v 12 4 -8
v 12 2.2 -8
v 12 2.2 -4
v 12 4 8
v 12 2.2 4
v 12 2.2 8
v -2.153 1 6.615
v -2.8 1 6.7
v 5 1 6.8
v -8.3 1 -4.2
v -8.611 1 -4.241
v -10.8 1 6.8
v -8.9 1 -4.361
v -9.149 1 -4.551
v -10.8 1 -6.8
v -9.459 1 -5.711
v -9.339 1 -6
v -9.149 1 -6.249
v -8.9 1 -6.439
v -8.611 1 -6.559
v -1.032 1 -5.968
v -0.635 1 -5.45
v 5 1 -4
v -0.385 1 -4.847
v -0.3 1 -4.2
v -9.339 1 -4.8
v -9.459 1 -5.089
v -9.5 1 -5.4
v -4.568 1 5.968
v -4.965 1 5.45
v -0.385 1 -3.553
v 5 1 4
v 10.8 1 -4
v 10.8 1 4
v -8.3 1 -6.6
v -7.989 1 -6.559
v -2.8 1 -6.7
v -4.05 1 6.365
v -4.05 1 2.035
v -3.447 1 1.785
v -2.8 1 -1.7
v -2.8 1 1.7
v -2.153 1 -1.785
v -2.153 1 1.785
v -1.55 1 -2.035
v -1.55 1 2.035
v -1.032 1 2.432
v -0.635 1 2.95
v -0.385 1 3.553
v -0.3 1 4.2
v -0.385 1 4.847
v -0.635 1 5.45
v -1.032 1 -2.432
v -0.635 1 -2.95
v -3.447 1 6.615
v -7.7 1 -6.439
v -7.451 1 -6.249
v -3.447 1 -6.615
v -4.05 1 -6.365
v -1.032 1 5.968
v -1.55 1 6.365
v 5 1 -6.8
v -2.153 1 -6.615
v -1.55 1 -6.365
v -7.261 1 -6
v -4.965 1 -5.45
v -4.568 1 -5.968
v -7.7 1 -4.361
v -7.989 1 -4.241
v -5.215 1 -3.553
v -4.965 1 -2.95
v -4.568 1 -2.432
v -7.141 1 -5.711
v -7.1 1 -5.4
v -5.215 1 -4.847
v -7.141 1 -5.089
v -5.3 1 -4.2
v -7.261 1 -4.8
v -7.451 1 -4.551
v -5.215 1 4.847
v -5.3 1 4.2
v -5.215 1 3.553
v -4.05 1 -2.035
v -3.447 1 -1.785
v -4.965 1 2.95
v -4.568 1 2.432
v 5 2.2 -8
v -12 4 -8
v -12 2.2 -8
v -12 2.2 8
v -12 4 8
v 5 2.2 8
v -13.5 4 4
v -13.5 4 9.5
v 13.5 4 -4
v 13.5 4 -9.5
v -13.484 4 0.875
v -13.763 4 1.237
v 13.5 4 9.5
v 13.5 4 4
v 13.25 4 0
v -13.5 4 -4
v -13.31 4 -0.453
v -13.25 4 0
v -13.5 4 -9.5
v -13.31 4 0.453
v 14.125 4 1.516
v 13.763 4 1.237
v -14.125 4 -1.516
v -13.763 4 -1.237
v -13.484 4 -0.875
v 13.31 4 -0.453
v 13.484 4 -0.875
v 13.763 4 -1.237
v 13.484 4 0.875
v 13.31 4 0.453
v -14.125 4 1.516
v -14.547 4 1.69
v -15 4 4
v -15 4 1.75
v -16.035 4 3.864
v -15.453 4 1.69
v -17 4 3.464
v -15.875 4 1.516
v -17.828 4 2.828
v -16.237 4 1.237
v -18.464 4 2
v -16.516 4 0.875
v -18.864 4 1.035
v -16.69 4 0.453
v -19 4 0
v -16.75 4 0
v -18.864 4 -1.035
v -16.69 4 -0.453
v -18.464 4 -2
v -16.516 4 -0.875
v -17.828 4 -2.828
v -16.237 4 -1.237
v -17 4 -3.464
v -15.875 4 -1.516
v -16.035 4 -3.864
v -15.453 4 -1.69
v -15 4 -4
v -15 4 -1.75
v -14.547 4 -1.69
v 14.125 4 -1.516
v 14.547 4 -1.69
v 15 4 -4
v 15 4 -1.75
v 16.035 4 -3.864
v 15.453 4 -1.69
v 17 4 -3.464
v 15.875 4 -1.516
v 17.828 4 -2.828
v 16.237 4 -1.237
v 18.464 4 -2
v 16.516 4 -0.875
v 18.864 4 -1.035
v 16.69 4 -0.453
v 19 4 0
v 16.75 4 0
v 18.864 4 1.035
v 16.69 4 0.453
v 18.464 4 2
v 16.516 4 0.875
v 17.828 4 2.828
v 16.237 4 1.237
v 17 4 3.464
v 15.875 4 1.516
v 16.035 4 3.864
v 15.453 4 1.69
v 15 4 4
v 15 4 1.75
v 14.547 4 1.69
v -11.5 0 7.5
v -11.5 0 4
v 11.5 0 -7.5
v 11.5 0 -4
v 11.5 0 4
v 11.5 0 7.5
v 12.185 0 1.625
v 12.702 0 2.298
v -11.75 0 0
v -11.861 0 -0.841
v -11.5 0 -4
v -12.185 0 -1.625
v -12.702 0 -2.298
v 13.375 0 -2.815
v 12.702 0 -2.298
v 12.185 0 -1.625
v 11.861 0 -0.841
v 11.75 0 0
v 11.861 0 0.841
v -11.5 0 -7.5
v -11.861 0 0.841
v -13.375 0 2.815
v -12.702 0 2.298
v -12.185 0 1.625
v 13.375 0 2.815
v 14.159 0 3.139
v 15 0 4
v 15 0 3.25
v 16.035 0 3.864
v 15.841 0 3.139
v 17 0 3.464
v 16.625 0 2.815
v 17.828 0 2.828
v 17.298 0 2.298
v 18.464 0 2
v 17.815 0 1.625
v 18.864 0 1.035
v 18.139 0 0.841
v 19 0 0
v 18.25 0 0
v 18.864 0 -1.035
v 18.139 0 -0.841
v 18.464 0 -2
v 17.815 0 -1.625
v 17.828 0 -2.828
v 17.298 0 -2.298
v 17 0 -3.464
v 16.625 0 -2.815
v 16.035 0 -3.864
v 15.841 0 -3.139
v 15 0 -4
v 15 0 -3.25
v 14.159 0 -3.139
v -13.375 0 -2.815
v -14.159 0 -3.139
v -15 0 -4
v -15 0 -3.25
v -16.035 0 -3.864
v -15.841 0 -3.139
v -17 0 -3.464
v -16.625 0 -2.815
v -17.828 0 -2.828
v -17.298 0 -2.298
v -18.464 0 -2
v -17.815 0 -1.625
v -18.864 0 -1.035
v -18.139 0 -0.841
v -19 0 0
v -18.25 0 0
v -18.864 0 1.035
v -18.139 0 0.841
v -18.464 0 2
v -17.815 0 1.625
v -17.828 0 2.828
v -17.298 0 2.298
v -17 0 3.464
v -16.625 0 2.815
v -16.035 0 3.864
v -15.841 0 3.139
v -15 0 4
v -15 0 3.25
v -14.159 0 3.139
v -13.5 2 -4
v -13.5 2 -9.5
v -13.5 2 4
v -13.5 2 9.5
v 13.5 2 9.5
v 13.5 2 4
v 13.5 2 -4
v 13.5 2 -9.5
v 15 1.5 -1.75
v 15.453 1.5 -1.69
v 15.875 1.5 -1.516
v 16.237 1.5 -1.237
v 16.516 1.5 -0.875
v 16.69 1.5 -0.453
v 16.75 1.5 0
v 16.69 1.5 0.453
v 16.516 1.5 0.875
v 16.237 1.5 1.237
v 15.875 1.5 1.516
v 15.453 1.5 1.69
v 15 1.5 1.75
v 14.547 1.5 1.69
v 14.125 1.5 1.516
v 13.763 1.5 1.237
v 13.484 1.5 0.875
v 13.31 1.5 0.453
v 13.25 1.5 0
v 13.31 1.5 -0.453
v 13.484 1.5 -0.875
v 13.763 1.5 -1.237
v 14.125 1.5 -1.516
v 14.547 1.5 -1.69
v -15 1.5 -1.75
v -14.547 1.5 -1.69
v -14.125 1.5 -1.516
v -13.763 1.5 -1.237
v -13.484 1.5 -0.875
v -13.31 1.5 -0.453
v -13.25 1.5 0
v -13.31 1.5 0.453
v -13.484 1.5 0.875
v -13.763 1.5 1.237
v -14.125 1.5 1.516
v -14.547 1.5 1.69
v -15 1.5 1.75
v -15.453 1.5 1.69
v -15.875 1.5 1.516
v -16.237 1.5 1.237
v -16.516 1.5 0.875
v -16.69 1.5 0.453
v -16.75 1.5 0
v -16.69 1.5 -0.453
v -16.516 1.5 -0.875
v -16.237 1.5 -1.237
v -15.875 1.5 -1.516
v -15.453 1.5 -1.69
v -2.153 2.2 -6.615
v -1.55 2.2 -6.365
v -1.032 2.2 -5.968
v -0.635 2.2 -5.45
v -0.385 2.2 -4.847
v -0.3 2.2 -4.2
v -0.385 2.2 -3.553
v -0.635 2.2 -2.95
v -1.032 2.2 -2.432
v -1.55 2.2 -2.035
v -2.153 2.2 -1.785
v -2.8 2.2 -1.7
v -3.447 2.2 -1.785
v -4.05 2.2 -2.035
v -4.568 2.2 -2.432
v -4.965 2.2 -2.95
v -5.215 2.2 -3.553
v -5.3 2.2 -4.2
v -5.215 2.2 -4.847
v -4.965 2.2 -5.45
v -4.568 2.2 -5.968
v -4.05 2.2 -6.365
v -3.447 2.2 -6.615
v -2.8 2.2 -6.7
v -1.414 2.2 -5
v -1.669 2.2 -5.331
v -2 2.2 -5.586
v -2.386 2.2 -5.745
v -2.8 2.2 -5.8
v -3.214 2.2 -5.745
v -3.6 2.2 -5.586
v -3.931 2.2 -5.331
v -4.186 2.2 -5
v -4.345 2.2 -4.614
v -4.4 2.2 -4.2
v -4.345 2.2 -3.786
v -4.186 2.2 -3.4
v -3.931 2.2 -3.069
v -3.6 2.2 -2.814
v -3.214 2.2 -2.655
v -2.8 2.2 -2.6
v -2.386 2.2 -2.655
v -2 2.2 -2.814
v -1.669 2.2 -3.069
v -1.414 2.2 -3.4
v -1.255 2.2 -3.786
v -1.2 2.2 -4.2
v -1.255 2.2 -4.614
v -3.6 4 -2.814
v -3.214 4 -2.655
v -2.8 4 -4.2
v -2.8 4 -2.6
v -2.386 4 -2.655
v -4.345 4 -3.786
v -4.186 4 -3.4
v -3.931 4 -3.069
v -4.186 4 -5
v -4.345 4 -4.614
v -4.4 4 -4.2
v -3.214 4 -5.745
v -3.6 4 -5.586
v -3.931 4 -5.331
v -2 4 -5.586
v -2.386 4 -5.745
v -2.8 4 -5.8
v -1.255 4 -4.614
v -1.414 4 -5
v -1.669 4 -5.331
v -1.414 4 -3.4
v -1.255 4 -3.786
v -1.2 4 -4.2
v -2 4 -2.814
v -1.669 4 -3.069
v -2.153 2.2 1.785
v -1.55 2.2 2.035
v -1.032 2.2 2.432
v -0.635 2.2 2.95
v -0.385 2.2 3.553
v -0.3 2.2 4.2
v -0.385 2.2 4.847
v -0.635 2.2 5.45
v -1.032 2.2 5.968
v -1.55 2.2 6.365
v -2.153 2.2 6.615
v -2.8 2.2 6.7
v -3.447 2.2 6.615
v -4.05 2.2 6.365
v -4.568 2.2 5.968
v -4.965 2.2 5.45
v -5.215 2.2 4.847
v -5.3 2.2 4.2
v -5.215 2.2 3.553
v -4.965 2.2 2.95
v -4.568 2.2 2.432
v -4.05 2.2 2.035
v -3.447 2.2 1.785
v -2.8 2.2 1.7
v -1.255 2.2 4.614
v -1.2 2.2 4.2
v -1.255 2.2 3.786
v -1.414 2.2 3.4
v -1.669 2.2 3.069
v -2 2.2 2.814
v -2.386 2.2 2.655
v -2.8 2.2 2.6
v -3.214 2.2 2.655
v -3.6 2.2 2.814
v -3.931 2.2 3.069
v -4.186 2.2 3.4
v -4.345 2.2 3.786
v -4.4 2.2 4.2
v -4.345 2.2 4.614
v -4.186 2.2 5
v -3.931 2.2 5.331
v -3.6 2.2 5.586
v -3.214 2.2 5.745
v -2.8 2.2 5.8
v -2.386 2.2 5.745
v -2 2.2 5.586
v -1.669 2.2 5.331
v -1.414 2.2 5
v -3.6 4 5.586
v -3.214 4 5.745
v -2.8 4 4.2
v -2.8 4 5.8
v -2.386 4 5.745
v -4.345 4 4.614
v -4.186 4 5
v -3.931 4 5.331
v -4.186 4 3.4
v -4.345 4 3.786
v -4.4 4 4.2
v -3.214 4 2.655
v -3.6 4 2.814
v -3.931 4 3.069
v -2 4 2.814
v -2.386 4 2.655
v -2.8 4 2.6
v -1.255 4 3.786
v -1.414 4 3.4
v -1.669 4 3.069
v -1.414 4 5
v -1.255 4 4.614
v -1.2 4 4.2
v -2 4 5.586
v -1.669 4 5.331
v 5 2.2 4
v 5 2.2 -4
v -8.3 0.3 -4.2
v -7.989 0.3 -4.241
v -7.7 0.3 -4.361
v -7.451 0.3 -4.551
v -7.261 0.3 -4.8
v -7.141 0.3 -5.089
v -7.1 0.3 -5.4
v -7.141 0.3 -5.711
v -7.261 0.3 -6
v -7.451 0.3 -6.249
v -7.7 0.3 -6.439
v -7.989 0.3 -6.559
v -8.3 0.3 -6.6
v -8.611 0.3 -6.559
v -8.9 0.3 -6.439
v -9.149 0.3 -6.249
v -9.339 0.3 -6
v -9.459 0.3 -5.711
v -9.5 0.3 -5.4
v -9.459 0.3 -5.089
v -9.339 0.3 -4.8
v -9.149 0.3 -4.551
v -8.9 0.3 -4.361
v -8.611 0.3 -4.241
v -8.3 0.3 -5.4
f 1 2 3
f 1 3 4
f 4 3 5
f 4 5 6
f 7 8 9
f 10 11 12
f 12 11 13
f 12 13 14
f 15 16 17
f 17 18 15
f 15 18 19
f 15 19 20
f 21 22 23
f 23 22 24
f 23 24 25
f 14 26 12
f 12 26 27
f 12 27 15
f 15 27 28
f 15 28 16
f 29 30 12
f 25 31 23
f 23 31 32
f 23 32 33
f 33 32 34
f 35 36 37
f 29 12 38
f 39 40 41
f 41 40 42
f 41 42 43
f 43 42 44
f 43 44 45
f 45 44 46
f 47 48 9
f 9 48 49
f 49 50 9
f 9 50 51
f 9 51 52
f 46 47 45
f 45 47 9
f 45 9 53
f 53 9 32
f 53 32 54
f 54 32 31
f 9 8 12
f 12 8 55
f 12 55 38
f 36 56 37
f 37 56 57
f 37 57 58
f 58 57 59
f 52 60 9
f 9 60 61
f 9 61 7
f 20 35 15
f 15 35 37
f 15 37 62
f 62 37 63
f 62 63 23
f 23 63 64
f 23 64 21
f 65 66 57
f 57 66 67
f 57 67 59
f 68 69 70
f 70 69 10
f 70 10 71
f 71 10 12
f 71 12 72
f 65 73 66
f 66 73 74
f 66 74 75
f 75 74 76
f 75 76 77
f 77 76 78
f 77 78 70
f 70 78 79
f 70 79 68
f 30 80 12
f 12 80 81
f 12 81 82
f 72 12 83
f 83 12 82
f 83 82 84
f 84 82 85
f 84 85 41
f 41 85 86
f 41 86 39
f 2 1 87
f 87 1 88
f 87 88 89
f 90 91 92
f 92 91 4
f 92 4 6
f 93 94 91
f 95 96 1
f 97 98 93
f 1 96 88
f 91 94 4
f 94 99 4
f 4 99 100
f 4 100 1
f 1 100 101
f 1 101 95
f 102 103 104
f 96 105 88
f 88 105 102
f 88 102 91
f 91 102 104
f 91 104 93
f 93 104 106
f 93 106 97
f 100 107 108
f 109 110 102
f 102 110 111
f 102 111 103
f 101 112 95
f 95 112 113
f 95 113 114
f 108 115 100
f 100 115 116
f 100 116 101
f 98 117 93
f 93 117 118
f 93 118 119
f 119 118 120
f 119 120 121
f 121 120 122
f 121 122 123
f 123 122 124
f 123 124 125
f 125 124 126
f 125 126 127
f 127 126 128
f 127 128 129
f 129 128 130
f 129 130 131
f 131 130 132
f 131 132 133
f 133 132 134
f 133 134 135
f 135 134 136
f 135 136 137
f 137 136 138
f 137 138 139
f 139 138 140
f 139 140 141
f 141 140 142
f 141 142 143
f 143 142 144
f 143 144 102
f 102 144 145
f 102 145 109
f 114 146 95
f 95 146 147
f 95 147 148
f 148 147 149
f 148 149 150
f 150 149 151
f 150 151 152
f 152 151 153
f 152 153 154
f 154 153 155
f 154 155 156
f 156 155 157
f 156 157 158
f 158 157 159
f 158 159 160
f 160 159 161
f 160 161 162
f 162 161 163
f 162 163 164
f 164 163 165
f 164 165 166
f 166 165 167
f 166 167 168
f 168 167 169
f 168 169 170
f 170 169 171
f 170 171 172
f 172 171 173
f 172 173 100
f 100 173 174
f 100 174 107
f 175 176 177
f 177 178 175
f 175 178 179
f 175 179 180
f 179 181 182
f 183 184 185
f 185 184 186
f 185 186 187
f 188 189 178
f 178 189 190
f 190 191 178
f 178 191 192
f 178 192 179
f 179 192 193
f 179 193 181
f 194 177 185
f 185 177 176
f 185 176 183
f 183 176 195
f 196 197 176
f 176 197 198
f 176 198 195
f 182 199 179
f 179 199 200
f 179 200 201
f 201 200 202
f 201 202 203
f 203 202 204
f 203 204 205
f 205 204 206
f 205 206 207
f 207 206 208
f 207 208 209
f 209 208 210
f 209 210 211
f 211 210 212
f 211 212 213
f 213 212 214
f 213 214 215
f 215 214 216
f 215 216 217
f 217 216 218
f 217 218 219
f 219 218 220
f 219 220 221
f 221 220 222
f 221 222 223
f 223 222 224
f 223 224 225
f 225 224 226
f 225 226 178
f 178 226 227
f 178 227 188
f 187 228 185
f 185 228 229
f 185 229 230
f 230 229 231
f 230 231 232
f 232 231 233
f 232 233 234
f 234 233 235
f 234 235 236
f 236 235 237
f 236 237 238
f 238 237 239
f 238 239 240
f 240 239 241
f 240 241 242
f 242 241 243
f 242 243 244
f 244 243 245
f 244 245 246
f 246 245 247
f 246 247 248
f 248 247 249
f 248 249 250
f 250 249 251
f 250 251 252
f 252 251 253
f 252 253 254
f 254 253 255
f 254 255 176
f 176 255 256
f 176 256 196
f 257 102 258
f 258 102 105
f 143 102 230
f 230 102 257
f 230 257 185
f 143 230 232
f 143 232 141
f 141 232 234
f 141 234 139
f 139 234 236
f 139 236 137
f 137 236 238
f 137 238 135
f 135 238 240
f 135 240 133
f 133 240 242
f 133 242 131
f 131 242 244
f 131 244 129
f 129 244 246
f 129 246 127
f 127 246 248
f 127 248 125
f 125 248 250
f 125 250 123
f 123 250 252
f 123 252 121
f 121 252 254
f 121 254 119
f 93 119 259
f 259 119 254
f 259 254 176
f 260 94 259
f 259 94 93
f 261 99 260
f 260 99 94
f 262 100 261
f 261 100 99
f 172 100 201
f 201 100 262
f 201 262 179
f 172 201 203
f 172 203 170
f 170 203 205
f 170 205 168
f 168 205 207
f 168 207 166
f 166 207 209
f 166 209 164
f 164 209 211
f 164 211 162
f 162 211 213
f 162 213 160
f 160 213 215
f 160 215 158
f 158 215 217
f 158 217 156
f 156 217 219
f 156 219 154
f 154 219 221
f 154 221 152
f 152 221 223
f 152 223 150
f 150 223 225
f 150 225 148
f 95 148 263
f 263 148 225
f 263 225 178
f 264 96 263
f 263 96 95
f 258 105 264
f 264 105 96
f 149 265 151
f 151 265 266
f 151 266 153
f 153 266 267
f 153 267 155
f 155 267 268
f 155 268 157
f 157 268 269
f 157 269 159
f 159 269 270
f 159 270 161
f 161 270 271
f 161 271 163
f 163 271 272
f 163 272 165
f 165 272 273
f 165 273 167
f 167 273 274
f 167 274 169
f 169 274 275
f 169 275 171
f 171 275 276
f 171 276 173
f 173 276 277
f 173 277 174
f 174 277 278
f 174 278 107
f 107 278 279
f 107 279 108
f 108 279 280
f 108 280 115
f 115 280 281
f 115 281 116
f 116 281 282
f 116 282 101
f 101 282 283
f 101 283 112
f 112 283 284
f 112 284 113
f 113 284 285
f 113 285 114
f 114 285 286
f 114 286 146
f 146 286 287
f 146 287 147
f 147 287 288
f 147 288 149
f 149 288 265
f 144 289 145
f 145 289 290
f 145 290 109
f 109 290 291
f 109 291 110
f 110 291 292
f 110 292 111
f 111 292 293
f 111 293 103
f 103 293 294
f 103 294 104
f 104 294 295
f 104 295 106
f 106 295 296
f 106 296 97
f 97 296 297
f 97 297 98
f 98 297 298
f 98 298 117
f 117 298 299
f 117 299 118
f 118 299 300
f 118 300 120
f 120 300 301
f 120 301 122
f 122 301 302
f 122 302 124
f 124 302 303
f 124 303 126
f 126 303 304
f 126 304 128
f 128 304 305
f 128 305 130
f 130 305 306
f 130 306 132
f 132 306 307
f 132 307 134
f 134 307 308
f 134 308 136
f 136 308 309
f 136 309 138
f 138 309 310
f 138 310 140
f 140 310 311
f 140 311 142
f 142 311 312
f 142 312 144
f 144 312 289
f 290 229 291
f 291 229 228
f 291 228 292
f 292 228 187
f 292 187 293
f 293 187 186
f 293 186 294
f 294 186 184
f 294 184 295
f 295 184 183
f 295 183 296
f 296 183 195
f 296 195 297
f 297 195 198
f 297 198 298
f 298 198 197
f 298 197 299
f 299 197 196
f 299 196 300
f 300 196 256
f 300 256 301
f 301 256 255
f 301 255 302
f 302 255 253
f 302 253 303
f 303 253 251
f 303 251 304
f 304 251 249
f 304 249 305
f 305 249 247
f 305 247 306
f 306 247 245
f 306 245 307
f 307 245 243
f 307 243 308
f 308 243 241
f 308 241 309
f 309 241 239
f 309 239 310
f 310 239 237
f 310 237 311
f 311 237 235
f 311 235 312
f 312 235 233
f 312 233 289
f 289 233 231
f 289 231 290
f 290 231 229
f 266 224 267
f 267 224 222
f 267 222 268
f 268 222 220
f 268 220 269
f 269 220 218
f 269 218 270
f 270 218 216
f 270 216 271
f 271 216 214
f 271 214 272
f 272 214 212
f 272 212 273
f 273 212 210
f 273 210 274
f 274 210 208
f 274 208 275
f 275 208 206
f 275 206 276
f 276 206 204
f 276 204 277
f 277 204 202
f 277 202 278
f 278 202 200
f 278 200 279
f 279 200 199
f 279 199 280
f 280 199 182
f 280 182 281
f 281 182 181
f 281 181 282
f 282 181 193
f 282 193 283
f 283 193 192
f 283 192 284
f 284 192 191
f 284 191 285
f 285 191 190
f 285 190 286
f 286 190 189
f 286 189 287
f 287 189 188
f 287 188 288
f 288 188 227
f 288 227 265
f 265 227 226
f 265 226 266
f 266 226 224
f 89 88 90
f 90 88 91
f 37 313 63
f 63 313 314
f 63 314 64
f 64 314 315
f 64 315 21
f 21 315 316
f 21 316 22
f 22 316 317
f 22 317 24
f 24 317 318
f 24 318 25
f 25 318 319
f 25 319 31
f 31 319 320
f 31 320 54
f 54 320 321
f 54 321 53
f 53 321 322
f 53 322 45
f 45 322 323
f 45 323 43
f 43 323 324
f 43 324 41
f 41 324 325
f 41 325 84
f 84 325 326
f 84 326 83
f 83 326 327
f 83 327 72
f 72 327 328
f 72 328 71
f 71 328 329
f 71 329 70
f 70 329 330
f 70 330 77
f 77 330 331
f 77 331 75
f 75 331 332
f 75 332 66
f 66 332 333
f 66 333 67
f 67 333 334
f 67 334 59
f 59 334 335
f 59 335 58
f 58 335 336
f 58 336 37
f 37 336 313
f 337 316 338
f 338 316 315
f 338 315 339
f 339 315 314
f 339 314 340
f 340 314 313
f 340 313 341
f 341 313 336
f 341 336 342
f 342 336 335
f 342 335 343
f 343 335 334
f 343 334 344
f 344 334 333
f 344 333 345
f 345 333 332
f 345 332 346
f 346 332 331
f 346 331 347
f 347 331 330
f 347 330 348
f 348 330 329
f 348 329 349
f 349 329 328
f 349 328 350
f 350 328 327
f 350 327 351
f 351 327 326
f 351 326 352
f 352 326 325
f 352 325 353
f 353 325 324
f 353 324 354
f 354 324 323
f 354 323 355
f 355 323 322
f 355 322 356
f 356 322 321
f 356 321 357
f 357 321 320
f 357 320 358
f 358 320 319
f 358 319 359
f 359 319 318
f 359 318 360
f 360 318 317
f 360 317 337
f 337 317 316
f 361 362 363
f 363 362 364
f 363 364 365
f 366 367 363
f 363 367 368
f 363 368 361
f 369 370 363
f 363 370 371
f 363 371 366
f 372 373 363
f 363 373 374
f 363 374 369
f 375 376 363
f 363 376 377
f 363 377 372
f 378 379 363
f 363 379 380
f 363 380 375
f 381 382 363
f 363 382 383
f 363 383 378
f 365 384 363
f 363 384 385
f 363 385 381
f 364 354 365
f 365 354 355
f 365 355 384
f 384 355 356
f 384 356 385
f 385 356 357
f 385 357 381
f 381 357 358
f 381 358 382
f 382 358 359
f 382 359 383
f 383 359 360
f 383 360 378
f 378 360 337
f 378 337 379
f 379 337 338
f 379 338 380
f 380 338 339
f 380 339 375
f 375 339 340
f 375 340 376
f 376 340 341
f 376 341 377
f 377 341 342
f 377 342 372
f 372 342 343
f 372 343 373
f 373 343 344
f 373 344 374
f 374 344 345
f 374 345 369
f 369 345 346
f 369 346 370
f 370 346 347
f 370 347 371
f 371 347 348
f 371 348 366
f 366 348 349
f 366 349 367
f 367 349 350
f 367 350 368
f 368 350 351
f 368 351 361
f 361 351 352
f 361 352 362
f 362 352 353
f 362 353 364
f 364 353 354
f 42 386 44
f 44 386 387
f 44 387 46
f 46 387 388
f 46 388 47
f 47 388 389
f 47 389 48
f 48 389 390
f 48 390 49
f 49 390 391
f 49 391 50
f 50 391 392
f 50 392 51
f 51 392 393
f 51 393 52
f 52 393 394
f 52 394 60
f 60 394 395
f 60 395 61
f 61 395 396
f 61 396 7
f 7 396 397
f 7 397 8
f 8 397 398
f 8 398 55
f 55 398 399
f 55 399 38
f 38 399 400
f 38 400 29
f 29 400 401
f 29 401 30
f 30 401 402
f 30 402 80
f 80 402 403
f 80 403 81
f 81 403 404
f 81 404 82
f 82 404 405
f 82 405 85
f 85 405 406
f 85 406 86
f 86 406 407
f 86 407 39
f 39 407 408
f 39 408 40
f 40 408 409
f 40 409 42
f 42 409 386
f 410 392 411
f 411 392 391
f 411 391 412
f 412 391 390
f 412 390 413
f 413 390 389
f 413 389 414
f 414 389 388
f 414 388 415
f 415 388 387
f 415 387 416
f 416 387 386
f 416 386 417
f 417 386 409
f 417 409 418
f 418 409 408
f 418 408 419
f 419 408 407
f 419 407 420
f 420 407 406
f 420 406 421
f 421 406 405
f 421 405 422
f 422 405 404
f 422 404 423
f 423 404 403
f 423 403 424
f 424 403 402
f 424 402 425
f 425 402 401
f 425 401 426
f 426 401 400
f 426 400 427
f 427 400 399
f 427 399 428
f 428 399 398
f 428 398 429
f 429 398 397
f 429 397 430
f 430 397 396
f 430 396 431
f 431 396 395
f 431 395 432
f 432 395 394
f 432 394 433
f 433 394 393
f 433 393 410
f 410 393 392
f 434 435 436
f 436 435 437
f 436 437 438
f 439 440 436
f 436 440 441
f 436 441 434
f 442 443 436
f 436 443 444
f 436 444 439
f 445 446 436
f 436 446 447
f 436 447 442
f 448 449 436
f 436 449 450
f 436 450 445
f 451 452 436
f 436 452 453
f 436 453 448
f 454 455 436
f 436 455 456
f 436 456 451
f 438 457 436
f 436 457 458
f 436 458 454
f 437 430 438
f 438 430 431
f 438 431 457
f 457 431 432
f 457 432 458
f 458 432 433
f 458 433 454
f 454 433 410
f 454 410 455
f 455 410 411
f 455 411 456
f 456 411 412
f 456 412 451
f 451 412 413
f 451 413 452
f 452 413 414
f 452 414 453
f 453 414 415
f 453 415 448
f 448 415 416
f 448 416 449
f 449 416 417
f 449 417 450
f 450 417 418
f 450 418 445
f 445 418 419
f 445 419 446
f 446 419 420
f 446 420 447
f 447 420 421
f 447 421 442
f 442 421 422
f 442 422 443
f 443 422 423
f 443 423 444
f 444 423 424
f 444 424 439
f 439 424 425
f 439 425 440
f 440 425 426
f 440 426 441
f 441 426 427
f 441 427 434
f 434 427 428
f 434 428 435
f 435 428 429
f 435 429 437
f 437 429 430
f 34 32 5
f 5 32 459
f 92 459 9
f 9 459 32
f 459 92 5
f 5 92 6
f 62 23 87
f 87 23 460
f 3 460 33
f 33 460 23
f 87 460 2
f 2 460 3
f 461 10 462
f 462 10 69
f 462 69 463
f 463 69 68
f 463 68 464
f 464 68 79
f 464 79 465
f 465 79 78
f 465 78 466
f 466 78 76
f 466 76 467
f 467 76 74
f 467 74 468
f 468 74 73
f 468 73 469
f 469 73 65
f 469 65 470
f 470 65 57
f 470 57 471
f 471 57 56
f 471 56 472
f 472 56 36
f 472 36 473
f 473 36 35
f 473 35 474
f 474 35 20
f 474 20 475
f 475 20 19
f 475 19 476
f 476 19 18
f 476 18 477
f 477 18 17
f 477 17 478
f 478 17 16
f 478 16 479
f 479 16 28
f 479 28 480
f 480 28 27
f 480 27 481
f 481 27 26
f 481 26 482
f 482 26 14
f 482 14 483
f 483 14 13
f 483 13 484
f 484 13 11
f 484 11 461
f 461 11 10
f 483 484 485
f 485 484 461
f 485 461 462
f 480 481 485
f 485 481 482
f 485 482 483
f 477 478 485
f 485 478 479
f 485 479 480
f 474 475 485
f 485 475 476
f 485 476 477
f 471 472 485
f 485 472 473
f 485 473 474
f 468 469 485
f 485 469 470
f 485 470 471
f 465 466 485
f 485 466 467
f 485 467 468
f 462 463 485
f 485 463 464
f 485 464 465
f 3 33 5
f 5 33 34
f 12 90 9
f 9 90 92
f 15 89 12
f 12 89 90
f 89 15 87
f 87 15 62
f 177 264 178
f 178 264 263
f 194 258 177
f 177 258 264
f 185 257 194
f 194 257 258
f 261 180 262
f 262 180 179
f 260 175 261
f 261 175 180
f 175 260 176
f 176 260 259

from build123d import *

# Parameters (mm, degrees)
SKETCH_398_R        = 1.75
EXTRUDE_1_DEPTH     = 4
CHAMFER_1_SIZE      = 1.5
SKETCH_632_W        = 24
SKETCH_632_H        = 16
SKETCH_632_R        = 1.6
CUT_EXTRUDE_1_DEPTH = 3
SKETCH_910_R        = 2.5
SKETCH_910_W        = 7
SKETCH_910_H        = 4
EXTRUDE_2_DEPTH     = 1.2
SKETCH_1130_R       = 1.2
CUT_EXTRUDE_2_DEPTH = 0.7
CHAMFER_2_SIZE      = 1.2
CHAMFER_3_SIZE      = 2


with BuildPart() as part:
    # Sketch 398 → Бобышка-Вытянуть1 (new body)
    with BuildSketch(Plane(origin=(0, 0, 0), x_dir=(1, 0, 0), z_dir=(0, 1, 0))):
        with BuildLine():
            Line((-15, 4), (-13.5, 4))
            Line((-13.5, 4), (-13.5, 9.5))
            Line((-13.5, 9.5), (13.5, 9.5))
            Line((13.5, 9.5), (13.5, 4))
            Line((13.5, 4), (15, 4))
            ThreePointArc((15, 4), (19, 0), (15, -4))
            Line((15, -4), (13.5, -4))
            Line((13.5, -4), (13.5, -9.5))
            Line((13.5, -9.5), (-13.5, -9.5))
            Line((-13.5, -9.5), (-13.5, -4))
            Line((-13.5, -4), (-15, -4))
            ThreePointArc((-15, -4), (-19, 0), (-15, 4))
        make_face()
        with Locations((-15, 0)):
            Circle(SKETCH_398_R, mode=Mode.SUBTRACT)
        with Locations((15, 0)):
            Circle(SKETCH_398_R, mode=Mode.SUBTRACT)
    extrude(amount=EXTRUDE_1_DEPTH)

    # Фаска1
    chamfer_1_edges = [part.edges().sort_by_distance(p)[0] for p in [
        (13.25, 0, 0),
        (-16.75, 0, 0),
    ]]
    chamfer(chamfer_1_edges, length=CHAMFER_1_SIZE)

    # Sketch 632 → Вырез-Вытянуть1 (cut)
    with BuildSketch(Plane(origin=(0, 4, 0), x_dir=(1, 0, 0), z_dir=(0, 1, 0))):
        Rectangle(SKETCH_632_W, SKETCH_632_H)
        with Locations((-2.8, 4.2)):
            Circle(SKETCH_632_R, mode=Mode.SUBTRACT)
        with Locations((-2.8, -4.2)):
            Circle(SKETCH_632_R, mode=Mode.SUBTRACT)
    extrude(amount=-CUT_EXTRUDE_1_DEPTH, mode=Mode.SUBTRACT)

    # Sketch 910 → Бобышка-Вытянуть2 (add)
    with BuildSketch(Plane(origin=(0, 1, 0), x_dir=(1, 0, 0), z_dir=(0, 1, 0))):
        with Locations((-2.8, -4.2)):
            Circle(SKETCH_910_R)
        with Locations((-2.8, 4.2)):
            Circle(SKETCH_910_R)
        with Locations((8.5, -6)):
            Rectangle(SKETCH_910_W, SKETCH_910_H)
        with Locations((8.5, 6)):
            Rectangle(SKETCH_910_W, SKETCH_910_H)
    extrude(amount=EXTRUDE_2_DEPTH)

    # Sketch 1130 → Вырез-Вытянуть2 (cut)
    with BuildSketch(Plane(origin=(0, 1, 0), x_dir=(1, 0, 0), z_dir=(0, 1, 0))):
        with Locations((-8.3, 5.4)):
            Circle(SKETCH_1130_R)
    extrude(amount=-CUT_EXTRUDE_2_DEPTH, mode=Mode.SUBTRACT)

    # Фаска2
    chamfer_2_edges = [part.edges().sort_by_distance(p)[0] for p in [
        (12, 1, 0),
        (-3.5, 1, -8),
        (-12, 1, 0),
        (-3.5, 1, 8),
    ]]
    chamfer(chamfer_2_edges, length=CHAMFER_2_SIZE)

    # Фаска3
    chamfer_3_edges = [part.edges().sort_by_distance(p)[0] for p in [
        (0, 0, -9.5),
        (13.5, 0, -6.75),
        (13.5, 0, 6.75),
        (0, 0, 9.5),
        (-13.5, 0, 6.75),
        (-13.5, 0, -6.75),
    ]]
    chamfer(chamfer_3_edges, length=CHAMFER_3_SIZE)


solid = part.part
